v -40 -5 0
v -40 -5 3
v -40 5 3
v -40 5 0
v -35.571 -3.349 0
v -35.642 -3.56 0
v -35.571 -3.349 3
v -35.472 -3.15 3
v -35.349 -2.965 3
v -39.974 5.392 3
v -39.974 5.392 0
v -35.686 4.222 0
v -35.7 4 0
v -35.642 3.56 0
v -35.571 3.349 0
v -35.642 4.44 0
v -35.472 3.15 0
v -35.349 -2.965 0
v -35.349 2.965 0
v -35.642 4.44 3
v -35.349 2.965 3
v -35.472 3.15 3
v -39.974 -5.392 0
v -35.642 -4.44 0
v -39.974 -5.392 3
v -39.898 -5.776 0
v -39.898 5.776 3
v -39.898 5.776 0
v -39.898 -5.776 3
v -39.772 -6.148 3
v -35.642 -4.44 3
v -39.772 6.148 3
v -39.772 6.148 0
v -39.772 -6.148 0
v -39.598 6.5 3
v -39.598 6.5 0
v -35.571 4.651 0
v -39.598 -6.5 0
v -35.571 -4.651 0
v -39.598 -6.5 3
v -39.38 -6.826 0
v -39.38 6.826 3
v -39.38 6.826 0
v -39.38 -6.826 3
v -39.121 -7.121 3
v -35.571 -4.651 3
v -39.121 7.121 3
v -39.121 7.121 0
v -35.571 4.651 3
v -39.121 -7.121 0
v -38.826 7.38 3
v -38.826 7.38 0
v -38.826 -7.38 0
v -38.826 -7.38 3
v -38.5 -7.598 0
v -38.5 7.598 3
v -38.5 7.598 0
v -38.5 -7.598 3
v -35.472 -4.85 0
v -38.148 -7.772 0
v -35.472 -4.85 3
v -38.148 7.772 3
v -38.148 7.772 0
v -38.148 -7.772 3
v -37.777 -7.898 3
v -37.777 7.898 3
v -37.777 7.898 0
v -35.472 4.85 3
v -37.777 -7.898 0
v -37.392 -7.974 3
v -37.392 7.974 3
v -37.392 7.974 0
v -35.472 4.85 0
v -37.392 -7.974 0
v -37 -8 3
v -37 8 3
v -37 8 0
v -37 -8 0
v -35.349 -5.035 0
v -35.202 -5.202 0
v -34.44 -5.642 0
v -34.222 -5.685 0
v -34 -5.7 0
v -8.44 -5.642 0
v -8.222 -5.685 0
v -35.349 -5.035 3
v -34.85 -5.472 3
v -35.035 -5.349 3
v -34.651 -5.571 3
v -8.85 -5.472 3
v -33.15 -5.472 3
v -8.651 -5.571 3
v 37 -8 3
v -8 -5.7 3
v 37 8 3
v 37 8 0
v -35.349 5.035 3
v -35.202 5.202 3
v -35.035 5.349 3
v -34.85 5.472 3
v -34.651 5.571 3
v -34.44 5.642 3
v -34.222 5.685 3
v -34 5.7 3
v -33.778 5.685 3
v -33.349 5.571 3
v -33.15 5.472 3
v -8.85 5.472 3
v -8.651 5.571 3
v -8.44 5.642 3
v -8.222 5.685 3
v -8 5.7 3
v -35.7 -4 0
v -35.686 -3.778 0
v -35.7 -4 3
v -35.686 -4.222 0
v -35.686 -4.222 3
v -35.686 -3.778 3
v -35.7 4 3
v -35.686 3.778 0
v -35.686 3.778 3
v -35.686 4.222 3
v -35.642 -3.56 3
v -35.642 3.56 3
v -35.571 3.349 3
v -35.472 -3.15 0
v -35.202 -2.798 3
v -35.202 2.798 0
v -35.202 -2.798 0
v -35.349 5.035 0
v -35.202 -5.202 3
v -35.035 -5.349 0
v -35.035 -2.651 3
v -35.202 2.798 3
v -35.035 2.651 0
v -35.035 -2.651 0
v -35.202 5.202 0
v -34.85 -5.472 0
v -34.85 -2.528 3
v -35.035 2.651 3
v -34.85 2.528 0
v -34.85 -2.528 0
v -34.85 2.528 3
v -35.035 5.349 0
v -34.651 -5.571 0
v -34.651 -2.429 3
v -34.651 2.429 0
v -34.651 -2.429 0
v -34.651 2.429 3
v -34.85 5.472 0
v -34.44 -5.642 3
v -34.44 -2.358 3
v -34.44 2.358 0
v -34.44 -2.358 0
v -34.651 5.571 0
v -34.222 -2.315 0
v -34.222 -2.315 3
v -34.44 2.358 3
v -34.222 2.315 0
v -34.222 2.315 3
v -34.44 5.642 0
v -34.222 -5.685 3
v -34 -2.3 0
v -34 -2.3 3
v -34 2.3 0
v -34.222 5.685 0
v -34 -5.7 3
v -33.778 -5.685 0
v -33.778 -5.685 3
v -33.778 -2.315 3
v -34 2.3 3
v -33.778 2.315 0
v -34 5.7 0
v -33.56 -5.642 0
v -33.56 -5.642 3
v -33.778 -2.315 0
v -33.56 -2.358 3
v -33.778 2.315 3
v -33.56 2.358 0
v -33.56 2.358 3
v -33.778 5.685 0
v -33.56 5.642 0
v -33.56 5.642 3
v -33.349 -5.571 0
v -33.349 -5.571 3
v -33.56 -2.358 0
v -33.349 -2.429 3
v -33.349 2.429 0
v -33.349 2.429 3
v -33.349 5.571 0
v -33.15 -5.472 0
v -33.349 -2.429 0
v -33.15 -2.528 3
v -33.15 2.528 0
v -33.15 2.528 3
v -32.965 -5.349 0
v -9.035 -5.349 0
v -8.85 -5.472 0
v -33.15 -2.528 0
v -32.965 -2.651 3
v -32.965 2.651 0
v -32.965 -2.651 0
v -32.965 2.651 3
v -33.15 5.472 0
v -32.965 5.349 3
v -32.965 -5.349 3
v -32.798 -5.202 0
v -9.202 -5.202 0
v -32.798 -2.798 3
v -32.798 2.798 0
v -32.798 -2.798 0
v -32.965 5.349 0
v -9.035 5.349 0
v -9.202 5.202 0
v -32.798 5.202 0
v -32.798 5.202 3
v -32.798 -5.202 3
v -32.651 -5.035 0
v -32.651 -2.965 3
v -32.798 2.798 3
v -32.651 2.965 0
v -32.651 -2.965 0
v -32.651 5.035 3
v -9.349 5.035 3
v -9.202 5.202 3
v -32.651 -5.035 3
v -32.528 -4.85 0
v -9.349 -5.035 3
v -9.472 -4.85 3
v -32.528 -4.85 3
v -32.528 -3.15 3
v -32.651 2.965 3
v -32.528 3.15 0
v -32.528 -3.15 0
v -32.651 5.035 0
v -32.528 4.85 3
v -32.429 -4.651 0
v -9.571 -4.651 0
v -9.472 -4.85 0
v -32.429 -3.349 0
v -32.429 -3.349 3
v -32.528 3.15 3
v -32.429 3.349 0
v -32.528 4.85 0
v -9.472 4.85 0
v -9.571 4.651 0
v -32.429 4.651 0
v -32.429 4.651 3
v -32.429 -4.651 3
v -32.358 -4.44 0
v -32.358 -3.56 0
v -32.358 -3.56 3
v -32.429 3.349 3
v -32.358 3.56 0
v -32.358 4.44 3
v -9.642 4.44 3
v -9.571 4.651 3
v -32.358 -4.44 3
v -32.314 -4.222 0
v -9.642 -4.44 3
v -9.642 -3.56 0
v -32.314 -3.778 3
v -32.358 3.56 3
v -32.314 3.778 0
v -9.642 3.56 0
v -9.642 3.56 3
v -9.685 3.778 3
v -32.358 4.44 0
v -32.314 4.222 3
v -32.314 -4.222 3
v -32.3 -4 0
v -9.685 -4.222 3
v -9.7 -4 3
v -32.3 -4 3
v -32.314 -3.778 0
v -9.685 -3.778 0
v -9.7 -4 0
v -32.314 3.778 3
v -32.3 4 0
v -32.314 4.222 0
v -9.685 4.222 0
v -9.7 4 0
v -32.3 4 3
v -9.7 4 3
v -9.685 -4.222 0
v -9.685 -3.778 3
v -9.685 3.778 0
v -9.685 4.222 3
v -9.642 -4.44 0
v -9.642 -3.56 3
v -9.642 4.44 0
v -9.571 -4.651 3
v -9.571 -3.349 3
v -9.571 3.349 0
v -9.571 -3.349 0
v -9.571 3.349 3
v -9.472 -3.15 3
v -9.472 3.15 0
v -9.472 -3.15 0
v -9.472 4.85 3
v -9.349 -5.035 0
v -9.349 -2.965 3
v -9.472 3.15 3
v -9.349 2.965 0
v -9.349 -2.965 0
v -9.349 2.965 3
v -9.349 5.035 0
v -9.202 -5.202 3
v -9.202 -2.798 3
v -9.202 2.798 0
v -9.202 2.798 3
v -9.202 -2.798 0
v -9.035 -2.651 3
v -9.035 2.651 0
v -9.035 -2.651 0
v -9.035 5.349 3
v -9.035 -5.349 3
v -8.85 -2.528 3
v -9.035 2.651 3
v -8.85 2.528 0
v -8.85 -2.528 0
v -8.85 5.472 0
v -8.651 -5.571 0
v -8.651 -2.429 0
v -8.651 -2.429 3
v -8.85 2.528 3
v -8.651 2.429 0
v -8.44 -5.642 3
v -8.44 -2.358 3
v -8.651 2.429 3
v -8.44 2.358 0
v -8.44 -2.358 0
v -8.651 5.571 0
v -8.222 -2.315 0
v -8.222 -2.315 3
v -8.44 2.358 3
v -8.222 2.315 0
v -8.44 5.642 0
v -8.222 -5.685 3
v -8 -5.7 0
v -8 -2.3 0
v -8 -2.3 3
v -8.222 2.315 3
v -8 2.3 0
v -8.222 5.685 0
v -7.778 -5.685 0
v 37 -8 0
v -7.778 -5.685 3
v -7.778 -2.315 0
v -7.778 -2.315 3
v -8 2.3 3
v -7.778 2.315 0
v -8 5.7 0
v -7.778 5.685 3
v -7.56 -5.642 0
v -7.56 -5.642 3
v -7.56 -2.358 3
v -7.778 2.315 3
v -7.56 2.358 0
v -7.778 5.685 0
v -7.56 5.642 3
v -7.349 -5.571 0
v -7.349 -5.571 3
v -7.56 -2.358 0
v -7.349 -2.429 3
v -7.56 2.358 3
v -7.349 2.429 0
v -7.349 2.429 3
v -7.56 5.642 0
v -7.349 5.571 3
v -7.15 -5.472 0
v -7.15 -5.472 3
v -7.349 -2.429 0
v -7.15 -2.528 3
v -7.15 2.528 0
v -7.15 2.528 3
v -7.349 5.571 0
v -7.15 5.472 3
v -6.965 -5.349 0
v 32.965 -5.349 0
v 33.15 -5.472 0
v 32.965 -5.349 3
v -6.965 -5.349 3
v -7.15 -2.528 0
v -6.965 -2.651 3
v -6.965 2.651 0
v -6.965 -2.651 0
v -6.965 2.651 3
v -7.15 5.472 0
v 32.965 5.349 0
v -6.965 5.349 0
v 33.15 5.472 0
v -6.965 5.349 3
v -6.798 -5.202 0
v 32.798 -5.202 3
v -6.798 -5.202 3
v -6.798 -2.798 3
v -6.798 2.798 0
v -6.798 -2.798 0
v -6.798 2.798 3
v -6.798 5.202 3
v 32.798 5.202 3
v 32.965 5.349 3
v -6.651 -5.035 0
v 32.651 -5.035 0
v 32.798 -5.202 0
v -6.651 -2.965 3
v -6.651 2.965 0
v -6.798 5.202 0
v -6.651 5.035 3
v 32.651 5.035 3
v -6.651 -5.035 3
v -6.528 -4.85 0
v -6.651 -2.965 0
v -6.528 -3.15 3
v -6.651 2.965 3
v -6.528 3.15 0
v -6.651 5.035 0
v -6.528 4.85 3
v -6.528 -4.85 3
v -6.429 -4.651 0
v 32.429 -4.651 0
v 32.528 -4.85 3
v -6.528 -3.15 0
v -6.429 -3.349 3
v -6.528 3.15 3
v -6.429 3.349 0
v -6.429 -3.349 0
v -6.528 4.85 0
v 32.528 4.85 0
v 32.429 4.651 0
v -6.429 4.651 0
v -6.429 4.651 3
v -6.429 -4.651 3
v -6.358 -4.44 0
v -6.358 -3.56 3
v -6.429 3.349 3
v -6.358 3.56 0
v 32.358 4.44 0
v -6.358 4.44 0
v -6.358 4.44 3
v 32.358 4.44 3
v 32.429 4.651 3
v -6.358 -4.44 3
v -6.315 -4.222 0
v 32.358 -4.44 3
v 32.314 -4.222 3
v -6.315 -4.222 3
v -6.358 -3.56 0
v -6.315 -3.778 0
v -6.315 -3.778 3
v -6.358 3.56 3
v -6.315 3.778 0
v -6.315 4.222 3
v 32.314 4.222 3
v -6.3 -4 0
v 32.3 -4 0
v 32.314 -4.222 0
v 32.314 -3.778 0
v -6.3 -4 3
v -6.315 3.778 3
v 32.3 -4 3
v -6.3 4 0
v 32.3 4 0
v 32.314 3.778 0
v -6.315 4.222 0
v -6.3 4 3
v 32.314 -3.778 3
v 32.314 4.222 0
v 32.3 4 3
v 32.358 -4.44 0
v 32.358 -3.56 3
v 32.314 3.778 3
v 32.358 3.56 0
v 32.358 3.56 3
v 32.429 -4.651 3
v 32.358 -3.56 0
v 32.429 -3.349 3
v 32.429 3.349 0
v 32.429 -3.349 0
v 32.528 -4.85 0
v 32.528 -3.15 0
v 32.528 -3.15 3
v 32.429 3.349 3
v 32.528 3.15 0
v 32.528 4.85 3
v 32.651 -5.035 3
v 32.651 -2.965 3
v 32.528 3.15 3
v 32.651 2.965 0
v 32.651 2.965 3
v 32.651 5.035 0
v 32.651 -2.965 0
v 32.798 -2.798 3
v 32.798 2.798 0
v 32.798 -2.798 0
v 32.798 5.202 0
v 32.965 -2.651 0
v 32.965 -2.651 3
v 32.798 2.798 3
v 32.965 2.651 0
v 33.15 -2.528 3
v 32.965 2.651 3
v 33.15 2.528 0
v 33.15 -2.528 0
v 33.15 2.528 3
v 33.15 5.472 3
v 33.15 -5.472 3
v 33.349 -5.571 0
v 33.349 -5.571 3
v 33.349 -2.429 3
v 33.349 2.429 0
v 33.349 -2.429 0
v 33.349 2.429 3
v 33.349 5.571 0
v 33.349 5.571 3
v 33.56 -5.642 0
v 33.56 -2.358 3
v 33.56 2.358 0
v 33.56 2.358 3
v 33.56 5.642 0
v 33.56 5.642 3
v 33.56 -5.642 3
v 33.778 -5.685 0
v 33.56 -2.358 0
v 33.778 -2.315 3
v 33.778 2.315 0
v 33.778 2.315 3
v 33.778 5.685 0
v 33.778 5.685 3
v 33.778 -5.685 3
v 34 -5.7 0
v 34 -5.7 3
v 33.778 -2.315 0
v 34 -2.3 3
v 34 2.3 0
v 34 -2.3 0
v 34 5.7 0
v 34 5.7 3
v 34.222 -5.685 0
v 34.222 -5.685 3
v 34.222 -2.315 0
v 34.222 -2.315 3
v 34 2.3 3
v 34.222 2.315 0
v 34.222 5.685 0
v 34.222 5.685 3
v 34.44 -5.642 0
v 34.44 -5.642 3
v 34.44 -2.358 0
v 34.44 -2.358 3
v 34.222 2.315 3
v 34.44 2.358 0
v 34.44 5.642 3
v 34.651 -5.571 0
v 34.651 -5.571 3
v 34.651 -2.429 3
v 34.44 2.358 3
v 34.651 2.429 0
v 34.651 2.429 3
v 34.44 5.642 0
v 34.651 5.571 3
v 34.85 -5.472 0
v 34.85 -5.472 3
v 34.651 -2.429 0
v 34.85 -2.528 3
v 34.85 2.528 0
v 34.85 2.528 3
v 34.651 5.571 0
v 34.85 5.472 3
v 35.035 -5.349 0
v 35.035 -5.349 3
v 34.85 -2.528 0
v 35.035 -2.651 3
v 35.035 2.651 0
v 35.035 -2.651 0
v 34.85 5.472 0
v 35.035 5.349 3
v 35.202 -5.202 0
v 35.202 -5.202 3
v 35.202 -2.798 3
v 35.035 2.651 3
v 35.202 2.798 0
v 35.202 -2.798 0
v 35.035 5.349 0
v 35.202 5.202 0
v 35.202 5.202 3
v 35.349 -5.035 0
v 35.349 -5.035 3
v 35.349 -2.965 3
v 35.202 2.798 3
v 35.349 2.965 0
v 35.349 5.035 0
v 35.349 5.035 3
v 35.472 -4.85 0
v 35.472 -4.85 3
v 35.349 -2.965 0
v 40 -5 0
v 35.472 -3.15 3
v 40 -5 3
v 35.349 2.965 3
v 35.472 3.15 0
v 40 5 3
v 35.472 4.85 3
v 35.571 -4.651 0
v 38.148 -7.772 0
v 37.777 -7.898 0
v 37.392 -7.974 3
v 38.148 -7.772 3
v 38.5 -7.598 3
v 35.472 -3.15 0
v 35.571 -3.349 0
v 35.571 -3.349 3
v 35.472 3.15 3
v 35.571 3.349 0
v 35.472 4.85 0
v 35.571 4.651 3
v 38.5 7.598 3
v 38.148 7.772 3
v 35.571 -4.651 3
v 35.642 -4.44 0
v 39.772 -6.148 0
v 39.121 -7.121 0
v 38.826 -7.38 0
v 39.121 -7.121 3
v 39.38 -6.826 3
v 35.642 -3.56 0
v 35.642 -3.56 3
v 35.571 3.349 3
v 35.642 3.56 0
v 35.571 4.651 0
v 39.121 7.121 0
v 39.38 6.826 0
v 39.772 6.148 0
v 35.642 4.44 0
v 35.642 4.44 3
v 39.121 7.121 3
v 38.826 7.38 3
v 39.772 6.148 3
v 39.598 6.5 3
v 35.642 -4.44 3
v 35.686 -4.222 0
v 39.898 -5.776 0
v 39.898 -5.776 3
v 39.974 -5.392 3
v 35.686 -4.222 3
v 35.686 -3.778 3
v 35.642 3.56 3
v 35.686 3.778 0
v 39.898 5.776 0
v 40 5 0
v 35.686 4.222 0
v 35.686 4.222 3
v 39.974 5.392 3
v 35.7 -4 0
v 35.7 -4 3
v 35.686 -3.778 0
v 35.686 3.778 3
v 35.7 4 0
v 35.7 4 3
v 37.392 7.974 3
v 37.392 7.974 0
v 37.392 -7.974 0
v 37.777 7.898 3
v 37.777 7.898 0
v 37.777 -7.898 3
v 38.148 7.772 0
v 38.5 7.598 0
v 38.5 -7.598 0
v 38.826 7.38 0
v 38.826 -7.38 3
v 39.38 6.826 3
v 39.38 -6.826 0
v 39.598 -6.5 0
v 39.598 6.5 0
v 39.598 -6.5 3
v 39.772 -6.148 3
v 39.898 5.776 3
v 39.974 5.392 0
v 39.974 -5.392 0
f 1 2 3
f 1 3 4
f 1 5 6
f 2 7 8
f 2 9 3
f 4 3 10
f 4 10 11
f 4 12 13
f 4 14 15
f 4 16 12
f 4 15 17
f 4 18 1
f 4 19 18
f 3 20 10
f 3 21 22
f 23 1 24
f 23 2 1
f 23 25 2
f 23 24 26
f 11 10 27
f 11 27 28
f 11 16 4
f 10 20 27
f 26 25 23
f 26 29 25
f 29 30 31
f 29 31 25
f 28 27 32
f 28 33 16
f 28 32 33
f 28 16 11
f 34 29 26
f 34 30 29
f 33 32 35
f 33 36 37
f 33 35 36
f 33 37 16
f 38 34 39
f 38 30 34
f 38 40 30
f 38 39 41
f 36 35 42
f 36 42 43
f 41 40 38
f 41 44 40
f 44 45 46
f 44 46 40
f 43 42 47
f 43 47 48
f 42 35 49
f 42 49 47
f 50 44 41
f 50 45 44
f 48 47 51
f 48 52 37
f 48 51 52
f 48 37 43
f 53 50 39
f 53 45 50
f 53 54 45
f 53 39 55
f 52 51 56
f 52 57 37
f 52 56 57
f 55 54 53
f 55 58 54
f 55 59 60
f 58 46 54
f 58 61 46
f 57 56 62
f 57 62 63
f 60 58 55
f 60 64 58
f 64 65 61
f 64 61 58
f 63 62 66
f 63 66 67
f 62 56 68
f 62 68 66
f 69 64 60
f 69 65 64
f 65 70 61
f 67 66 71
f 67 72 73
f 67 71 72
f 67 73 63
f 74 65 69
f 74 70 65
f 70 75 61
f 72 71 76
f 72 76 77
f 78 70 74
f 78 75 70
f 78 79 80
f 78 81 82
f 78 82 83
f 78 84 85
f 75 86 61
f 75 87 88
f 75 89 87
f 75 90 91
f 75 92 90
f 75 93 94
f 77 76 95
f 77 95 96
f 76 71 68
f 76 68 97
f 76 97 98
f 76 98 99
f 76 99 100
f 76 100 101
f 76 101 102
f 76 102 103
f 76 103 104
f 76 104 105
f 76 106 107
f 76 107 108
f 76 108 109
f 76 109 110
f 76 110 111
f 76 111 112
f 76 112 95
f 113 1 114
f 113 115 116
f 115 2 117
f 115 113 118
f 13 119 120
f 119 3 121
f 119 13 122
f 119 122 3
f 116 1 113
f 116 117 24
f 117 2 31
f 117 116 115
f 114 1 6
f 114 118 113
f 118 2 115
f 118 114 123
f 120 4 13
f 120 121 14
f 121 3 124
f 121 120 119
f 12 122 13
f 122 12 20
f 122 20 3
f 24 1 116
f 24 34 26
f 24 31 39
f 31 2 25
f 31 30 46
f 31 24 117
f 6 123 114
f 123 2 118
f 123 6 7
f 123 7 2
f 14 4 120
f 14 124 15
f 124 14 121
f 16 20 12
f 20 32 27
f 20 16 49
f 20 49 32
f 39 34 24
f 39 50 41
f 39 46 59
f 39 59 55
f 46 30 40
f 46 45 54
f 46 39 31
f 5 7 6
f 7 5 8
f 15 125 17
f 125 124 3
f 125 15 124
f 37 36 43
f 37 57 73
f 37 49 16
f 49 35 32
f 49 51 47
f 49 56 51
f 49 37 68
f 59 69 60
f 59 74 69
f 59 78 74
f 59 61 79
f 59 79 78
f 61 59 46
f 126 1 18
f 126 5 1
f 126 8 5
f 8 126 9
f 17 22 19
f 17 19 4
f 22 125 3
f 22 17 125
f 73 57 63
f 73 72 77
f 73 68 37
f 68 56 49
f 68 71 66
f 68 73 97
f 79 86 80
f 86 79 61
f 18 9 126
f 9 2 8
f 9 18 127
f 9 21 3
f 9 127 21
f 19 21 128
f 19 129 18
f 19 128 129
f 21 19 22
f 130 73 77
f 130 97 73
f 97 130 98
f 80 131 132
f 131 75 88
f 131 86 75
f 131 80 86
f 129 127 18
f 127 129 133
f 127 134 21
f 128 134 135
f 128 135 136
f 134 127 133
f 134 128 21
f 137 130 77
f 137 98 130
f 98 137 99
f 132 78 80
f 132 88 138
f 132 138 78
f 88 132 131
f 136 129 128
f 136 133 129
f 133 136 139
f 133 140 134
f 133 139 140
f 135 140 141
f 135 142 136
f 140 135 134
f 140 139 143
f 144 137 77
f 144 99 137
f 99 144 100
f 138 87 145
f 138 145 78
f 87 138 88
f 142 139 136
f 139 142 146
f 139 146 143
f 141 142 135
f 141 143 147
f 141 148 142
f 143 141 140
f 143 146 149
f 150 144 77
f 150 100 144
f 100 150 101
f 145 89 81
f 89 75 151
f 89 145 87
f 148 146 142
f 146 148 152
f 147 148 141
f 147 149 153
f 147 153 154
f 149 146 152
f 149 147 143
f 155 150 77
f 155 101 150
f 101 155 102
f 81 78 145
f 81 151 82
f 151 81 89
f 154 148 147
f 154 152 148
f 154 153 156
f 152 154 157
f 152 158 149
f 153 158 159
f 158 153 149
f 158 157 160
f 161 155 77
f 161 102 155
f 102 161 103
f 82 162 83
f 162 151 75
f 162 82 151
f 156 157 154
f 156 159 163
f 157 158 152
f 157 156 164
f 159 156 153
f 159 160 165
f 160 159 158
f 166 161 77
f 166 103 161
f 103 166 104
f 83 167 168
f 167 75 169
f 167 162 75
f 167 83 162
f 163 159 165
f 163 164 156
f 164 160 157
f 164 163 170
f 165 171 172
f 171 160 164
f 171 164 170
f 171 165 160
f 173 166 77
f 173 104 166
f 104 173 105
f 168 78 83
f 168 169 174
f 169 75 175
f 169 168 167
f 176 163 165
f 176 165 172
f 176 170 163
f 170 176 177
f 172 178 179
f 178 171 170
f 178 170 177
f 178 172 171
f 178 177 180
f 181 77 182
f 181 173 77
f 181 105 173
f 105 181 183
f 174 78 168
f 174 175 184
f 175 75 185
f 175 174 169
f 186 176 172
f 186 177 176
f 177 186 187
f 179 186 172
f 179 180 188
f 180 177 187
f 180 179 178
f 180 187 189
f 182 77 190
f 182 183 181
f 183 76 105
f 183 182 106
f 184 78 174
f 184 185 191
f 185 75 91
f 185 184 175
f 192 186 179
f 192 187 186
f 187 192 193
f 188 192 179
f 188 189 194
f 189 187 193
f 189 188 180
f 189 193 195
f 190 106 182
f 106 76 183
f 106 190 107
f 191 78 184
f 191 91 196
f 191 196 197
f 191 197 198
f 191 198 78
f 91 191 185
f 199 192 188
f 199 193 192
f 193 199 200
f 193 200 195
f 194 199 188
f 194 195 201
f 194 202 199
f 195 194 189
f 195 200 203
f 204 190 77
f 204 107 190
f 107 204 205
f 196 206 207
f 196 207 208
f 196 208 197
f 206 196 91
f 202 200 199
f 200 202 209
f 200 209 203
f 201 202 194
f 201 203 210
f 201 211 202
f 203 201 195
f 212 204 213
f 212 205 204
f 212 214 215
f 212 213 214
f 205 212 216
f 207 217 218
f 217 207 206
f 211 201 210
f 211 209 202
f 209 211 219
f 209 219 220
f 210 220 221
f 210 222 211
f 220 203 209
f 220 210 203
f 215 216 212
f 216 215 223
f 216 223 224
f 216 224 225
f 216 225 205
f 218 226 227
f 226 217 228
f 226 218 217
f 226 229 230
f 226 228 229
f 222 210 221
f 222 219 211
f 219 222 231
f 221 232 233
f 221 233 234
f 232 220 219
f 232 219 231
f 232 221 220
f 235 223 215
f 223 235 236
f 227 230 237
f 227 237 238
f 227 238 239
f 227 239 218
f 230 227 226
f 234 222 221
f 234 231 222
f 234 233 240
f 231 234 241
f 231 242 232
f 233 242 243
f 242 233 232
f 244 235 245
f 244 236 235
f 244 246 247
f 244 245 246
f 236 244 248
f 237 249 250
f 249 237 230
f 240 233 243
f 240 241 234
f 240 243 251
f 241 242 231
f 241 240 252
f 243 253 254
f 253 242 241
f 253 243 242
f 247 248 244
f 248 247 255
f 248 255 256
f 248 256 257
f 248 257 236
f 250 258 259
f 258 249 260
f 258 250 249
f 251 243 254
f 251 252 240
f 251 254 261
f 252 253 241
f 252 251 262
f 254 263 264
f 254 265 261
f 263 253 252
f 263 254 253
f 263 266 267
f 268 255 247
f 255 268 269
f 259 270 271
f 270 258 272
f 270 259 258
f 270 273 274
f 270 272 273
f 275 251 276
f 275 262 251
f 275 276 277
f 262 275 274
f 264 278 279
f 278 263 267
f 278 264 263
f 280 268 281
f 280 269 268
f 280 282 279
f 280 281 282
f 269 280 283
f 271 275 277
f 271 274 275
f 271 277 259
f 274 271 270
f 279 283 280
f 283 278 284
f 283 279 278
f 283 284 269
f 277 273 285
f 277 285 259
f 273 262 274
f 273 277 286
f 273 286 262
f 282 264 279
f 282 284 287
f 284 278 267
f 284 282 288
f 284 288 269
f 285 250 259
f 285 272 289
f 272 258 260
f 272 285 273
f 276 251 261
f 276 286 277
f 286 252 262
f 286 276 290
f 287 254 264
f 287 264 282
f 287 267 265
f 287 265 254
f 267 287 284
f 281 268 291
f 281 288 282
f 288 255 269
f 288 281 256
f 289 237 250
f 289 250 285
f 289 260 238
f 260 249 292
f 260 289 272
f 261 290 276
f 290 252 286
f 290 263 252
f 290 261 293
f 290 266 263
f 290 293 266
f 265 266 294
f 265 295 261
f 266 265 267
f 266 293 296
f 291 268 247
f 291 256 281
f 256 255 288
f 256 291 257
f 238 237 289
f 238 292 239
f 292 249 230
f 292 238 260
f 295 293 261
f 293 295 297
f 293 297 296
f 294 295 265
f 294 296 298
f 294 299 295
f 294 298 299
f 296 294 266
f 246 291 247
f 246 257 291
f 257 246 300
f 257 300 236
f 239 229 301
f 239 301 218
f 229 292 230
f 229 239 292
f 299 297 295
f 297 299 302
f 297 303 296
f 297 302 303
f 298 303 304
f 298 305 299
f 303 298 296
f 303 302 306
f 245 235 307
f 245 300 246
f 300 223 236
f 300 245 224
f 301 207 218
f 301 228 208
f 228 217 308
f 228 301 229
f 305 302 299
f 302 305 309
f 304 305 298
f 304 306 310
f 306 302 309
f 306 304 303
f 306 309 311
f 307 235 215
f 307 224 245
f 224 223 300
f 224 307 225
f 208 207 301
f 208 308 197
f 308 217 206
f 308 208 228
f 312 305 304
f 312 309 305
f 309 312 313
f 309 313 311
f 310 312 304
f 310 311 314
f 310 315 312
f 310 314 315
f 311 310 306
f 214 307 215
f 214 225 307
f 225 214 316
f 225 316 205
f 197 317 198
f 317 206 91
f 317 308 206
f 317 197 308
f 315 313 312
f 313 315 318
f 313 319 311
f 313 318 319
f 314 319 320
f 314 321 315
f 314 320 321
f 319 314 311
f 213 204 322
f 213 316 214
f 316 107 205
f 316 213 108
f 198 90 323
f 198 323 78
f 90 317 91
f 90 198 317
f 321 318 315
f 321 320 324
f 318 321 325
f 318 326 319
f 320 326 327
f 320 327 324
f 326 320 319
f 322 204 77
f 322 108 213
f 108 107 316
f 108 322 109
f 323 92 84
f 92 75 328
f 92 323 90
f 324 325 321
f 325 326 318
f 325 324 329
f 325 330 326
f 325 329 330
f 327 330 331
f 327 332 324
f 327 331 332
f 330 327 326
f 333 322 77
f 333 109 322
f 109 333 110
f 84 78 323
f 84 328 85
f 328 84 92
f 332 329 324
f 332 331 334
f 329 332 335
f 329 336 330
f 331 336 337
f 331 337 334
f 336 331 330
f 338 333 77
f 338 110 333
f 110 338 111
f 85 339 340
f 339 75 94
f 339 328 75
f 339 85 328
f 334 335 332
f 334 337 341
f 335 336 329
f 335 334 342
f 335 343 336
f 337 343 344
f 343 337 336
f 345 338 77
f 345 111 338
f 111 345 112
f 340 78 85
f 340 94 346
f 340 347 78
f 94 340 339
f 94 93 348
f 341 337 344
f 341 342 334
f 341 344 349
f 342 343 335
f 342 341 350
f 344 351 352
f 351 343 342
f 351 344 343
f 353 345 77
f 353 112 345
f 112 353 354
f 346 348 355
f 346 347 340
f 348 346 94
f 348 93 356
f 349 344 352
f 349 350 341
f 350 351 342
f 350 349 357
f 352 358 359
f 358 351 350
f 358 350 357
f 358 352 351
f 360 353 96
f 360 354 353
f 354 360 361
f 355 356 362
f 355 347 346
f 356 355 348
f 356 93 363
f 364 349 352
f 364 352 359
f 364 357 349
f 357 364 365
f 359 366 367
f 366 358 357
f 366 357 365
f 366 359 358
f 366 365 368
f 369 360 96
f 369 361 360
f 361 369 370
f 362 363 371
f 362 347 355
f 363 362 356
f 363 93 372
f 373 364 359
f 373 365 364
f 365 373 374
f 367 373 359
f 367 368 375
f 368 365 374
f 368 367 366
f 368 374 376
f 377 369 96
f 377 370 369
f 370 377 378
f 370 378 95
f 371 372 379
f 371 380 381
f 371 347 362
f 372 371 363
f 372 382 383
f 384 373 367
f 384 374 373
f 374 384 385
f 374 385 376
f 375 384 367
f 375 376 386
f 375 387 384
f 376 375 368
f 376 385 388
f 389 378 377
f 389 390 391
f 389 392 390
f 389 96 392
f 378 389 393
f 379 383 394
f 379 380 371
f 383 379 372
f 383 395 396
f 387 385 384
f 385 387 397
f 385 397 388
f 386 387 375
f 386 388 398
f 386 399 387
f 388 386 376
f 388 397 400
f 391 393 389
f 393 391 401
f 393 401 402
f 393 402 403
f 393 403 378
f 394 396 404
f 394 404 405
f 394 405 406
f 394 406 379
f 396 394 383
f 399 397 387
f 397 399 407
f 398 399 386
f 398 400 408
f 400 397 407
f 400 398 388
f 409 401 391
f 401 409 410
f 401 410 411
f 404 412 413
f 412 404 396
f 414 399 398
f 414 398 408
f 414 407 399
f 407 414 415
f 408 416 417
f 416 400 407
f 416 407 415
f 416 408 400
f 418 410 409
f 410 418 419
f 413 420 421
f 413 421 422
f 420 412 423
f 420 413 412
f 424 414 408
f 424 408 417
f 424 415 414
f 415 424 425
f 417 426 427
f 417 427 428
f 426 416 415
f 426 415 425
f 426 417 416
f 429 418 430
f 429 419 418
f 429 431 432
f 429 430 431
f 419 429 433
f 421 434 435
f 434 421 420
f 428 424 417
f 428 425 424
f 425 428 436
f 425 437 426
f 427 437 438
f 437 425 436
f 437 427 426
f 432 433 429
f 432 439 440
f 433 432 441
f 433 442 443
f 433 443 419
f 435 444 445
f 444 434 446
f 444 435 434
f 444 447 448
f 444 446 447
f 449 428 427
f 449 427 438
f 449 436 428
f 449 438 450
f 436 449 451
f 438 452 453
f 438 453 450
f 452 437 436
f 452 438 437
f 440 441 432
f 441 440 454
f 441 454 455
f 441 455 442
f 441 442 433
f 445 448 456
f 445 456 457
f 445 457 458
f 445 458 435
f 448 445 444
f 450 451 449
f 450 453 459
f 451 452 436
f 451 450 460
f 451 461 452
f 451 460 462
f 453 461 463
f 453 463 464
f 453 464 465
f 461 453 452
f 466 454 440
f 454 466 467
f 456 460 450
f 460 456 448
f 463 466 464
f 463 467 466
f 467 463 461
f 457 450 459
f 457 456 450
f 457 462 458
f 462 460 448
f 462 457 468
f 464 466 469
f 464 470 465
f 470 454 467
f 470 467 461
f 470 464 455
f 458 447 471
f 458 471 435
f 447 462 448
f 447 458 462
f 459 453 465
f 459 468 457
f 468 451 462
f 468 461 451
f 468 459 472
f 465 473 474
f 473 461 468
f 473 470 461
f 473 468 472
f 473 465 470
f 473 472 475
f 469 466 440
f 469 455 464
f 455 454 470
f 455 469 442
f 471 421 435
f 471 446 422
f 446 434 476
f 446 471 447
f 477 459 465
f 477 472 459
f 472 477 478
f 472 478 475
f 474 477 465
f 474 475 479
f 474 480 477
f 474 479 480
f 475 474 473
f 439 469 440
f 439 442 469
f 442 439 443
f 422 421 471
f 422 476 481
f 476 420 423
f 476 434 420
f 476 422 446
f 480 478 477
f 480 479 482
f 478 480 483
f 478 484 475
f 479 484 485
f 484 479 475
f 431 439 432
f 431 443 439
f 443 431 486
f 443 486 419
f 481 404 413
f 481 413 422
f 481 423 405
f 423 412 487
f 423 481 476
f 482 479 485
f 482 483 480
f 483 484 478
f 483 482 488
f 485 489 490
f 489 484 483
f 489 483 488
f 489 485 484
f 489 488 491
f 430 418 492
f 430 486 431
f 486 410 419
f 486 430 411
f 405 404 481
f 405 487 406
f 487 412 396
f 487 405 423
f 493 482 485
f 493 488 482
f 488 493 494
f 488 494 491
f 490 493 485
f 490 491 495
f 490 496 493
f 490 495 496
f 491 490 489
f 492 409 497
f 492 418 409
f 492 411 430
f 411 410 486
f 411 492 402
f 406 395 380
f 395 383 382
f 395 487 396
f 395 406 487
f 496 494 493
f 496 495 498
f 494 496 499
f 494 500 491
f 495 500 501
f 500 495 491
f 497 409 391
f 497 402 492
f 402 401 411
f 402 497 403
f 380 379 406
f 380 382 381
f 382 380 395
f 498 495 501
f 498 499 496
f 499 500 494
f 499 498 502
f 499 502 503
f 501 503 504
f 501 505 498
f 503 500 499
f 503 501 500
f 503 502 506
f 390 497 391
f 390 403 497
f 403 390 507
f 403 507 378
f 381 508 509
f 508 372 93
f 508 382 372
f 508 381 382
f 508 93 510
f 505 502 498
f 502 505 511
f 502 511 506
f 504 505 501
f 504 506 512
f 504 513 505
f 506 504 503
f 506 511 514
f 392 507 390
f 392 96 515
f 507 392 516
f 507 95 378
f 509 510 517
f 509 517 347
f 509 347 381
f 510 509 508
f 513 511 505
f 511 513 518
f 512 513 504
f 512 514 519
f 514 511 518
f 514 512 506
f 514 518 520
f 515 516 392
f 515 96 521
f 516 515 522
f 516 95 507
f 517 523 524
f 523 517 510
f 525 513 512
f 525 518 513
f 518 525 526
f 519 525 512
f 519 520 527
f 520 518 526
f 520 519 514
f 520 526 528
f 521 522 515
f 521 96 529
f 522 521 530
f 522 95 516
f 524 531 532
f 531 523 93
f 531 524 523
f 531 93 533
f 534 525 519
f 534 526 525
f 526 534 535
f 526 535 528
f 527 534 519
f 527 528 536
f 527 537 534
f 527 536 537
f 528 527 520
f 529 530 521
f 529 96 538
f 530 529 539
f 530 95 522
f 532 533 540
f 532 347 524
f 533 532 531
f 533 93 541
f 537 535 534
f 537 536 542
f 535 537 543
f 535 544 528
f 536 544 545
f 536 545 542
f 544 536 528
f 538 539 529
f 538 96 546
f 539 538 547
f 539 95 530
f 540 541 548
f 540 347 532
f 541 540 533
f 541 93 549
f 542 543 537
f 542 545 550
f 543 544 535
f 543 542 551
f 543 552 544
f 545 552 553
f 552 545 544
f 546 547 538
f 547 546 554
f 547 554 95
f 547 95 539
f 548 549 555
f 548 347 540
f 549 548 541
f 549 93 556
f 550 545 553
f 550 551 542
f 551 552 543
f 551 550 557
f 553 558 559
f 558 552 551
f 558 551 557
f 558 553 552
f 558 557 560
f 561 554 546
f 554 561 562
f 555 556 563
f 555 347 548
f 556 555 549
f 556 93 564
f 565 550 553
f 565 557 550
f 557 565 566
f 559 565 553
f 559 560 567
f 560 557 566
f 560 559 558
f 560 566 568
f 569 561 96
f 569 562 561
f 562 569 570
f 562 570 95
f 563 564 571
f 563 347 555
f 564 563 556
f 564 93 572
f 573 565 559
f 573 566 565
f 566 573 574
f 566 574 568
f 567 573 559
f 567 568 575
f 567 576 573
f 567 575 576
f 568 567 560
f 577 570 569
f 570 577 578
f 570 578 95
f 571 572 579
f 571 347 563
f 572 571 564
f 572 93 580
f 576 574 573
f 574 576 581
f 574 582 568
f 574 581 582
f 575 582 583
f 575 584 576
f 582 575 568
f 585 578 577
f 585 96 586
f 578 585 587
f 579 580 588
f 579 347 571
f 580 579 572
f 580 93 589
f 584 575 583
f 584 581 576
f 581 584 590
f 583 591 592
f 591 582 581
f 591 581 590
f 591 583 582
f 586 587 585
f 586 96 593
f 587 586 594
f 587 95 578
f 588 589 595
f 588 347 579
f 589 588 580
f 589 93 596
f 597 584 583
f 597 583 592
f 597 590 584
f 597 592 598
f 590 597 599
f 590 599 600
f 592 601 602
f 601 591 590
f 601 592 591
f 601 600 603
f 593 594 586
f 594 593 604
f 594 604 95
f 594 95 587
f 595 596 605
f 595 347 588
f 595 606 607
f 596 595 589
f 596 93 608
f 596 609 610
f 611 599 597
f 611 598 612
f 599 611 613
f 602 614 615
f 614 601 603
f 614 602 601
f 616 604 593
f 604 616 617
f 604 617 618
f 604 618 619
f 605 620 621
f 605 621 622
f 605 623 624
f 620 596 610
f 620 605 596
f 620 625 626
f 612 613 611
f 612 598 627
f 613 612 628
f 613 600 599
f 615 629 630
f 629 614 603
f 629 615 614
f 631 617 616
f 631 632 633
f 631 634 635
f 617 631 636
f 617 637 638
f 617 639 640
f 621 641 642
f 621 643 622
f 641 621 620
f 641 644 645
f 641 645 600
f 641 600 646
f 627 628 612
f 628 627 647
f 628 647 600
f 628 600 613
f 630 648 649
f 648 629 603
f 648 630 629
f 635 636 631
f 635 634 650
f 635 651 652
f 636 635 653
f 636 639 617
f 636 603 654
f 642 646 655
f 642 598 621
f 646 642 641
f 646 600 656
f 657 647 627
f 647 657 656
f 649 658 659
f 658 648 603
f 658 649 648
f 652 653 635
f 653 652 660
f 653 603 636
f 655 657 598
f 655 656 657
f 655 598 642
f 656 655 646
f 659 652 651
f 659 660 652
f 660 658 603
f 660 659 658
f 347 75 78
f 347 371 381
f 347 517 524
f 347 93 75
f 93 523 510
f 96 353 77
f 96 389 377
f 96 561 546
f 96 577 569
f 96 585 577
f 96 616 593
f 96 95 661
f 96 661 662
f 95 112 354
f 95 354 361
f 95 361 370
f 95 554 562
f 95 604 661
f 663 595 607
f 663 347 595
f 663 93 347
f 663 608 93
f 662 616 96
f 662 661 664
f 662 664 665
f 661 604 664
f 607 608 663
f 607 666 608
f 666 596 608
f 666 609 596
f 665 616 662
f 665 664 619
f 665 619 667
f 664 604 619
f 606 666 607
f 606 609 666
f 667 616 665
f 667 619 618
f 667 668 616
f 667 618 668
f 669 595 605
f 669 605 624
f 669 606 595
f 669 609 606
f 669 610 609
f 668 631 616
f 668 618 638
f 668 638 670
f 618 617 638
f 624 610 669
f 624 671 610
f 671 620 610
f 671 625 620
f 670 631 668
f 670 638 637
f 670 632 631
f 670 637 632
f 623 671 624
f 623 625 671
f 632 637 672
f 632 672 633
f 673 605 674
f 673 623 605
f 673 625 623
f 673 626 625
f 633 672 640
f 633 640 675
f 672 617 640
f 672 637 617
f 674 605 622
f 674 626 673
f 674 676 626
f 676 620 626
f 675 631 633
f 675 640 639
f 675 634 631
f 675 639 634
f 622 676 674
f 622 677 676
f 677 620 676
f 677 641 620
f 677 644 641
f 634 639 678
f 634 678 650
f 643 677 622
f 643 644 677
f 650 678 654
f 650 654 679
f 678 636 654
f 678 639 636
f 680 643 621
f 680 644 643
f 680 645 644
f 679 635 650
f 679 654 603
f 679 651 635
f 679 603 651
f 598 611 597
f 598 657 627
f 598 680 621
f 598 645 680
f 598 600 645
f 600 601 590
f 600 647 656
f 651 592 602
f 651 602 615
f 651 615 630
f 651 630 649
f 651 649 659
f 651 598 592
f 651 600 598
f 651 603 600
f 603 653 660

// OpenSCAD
// file: params.scad
// 18 舵机六足 · 3D 打印机身 · 共享参数和公共模块（本文件自己不导出 STL）
//
// 腿的几何尺寸和固件 firmware/hexapod_g7pro/params.h 的默认值一一对应：
//   coxa_len ↔ coxa    femur_len ↔ femur    tibia_len ↔ tibia
//   front_x / front_y / front_angle / mid_y / rear_x / rear_y / rear_angle 同名
// 所以打印这套机身，固件的腿长和安装位置参数都不用改。
//
// 坐标约定（和固件一致）：
//   机身坐标：X+ = 前，Y+ = 左，Z+ = 上，原点 = 机身中心，高度原点 = 大腿舵机轴。
//   腿坐标：原点 = 基节转轴，X+ = 腿朝外，Y+ = 逆时针一侧，Z+ = 上。
// 6 条腿的零件完全一样（不分左右），左右舵机转向的差别由固件里的 dir 参数处理。

/* [舵机 MG90S（量你自己的）] */
servo_w = 12.2;           // 机身宽度 (mm)
servo_l = 22.8;           // 机身长度，沿安装耳方向 (mm)
ear_span = 32.5;          // 两个安装耳外端之间的总长 (mm)
ear_hole_spacing = 28.0;  // 两个安装孔的中心距 (mm)
ear_z = 15.9;             // 机壳底面 → 安装耳下表面 (mm)
ear_t = 2.5;              // 安装耳厚度 (mm)
case_h = 22.7;            // 机壳底面 → 机壳顶面（不含输出轴）(mm)
shaft_off = 5.4;          // 输出轴中心 → 机身中心，沿长度方向 (mm)
shaft_gap = 4.0;          // 机壳顶面 → 舵机臂贴合面 (mm)

/* [舵机臂（单边臂，量你自己的）] */
horn_hub_d = 7.6;         // 舵机臂中心圆盘直径 (mm)
horn_len = 18.5;          // 中心 → 臂尖 (mm)
horn_w_hub = 6.2;         // 臂根宽度 (mm)
horn_w_tip = 4.2;         // 臂尖宽度 (mm)
horn_t = 1.6;             // 臂厚 = 零件上凹槽深度 (mm)
horn_holes = [10.5, 14.5];// 固定舵机臂的两个孔到中心的距离 (mm)
horn_screw_access = 5.5;  // 中心过孔：舵机臂中心螺丝和螺丝刀从这里进 (mm)

/* [腿的几何（和固件 params.h 一致）] */
coxa_len = 28;            // 基节转轴 → 大腿舵机轴 (mm)
femur_len = 50;           // 大腿舵机轴 → 小腿舵机轴 (mm)
tibia_len = 75;           // 小腿舵机轴 → 脚尖 (mm)
front_x = 60; front_y = 40; front_angle = 45;
mid_y = 55;
rear_x = 60; rear_y = 40; rear_angle = 135;

/* [打印余量和螺丝] */
clearance = 0.4;          // 方孔比舵机大多少 (mm)；太紧改 0.5
screw_pilot = 1.6;        // M2 自攻螺丝底孔（舵机安装耳）(mm)
horn_screw_hole = 2.0;    // 舵机臂固定螺丝过孔 (mm)
m3_hole = 3.4;            // M3 通孔 (mm)

/* [机身] */
plate_t = 3.0;            // 底板 / 甲板厚度 (mm)
standoff_h = 25;          // 底板和甲板之间的 M3 铜柱长度 (mm)
bar_t = 4.0;              // 大腿板厚度 (mm)
mount_t = 3.0;            // 舵机安装板厚度 (mm)
coxa_horn_z = 11;         // 基节舵机臂贴合面高度（相对大腿轴）(mm)

/* [Hidden] */
// 6 条腿：[髋轴 X, 髋轴 Y, 朝向°]，顺序 LF LM LR RF RM RR（和固件 leg 0..5 一致）
legs = [
  [ front_x,  front_y,  front_angle],
  [ 0,        mid_y,    90],
  [-rear_x,   rear_y,   rear_angle],
  [ front_x, -front_y, -front_angle],
  [ 0,       -mid_y,   -90],
  [-rear_x,  -rear_y,  -rear_angle]
];
leg_names = ["LF", "LM", "LR", "RF", "RM", "RR"];

pocket_w = servo_w + clearance;
pocket_l = servo_l + clearance;
// 舵机本地坐标：输出轴 = +Z，舵机臂贴合面在 z = 0，机身沿 +X 伸出（机身中心 x = shaft_off）
ear_low = -shaft_gap - case_h + ear_z;       // 安装耳“朝机壳底”的那一面，安装板贴在这里
plate_top_z = coxa_horn_z + ear_low;         // 底板上表面高度（相对大腿轴）
deck_z = plate_top_z + standoff_h;           // 甲板下表面高度

module at_leg(l) translate([l[0], l[1]]) rotate(l[2]) children();

// 舵机实体（装配预览 / 干涉检查用）
module servo_body() {
  color("DimGray") {
    translate([shaft_off - servo_l / 2, -servo_w / 2, -shaft_gap - case_h]) cube([servo_l, servo_w, case_h]);
    // 耳朵和输出轴都留 0.05 mm，避免“刚好贴着”被干涉检查当成碰撞
    translate([shaft_off - ear_span / 2, -servo_w / 2, ear_low + 0.05]) cube([ear_span, servo_w, ear_t - 0.05]);
    translate([0, 0, -shaft_gap]) cylinder(d = 5, h = shaft_gap - 0.05);
  }
}

// 安装板上的舵机方孔 + 两个安装耳螺丝底孔（在舵机本地坐标里，穿过安装板）
module servo_mount_cut() {
  translate([shaft_off - pocket_l / 2, -pocket_w / 2, ear_low - mount_t - 1]) cube([pocket_l, pocket_w, mount_t + 2]);
  for (s = [-1, 1]) translate([shaft_off + s * ear_hole_spacing / 2, 0, ear_low - mount_t - 1])
    cylinder(d = screw_pilot, h = mount_t + 2, $fn = 16);
}

// 单边舵机臂的 2D 外形：中心在原点，臂沿 +X
module horn_2d(extra = 0) {
  hull() {
    circle(d = horn_hub_d + extra);
    translate([0, -(horn_w_hub + extra) / 2]) square([0.01, horn_w_hub + extra]);
    translate([horn_len - horn_w_tip / 2, 0]) circle(d = horn_w_tip + extra);
  }
}

// 舵机臂凹槽：从 z = 0 往 +Z 挖 horn_t 深，加中心过孔和两个螺丝过孔（贯穿 depth）
module horn_cut(depth) {
  translate([0, 0, -0.01]) linear_extrude(horn_t + 0.01) horn_2d(clearance);
  translate([0, 0, -1]) cylinder(d = horn_screw_access, h = depth + 2, $fn = 24);
  for (r = horn_holes) translate([r, 0, -1]) cylinder(d = horn_screw_hole, h = depth + 2, $fn = 16);
}
// main file
// 长拼接条：打 1 个。装在底板下面，沿前后方向的中缝（y = 0）把左右两半拼起来。
include <parts.scad>
translate([0, 0, -splice_z]) splice_long();
